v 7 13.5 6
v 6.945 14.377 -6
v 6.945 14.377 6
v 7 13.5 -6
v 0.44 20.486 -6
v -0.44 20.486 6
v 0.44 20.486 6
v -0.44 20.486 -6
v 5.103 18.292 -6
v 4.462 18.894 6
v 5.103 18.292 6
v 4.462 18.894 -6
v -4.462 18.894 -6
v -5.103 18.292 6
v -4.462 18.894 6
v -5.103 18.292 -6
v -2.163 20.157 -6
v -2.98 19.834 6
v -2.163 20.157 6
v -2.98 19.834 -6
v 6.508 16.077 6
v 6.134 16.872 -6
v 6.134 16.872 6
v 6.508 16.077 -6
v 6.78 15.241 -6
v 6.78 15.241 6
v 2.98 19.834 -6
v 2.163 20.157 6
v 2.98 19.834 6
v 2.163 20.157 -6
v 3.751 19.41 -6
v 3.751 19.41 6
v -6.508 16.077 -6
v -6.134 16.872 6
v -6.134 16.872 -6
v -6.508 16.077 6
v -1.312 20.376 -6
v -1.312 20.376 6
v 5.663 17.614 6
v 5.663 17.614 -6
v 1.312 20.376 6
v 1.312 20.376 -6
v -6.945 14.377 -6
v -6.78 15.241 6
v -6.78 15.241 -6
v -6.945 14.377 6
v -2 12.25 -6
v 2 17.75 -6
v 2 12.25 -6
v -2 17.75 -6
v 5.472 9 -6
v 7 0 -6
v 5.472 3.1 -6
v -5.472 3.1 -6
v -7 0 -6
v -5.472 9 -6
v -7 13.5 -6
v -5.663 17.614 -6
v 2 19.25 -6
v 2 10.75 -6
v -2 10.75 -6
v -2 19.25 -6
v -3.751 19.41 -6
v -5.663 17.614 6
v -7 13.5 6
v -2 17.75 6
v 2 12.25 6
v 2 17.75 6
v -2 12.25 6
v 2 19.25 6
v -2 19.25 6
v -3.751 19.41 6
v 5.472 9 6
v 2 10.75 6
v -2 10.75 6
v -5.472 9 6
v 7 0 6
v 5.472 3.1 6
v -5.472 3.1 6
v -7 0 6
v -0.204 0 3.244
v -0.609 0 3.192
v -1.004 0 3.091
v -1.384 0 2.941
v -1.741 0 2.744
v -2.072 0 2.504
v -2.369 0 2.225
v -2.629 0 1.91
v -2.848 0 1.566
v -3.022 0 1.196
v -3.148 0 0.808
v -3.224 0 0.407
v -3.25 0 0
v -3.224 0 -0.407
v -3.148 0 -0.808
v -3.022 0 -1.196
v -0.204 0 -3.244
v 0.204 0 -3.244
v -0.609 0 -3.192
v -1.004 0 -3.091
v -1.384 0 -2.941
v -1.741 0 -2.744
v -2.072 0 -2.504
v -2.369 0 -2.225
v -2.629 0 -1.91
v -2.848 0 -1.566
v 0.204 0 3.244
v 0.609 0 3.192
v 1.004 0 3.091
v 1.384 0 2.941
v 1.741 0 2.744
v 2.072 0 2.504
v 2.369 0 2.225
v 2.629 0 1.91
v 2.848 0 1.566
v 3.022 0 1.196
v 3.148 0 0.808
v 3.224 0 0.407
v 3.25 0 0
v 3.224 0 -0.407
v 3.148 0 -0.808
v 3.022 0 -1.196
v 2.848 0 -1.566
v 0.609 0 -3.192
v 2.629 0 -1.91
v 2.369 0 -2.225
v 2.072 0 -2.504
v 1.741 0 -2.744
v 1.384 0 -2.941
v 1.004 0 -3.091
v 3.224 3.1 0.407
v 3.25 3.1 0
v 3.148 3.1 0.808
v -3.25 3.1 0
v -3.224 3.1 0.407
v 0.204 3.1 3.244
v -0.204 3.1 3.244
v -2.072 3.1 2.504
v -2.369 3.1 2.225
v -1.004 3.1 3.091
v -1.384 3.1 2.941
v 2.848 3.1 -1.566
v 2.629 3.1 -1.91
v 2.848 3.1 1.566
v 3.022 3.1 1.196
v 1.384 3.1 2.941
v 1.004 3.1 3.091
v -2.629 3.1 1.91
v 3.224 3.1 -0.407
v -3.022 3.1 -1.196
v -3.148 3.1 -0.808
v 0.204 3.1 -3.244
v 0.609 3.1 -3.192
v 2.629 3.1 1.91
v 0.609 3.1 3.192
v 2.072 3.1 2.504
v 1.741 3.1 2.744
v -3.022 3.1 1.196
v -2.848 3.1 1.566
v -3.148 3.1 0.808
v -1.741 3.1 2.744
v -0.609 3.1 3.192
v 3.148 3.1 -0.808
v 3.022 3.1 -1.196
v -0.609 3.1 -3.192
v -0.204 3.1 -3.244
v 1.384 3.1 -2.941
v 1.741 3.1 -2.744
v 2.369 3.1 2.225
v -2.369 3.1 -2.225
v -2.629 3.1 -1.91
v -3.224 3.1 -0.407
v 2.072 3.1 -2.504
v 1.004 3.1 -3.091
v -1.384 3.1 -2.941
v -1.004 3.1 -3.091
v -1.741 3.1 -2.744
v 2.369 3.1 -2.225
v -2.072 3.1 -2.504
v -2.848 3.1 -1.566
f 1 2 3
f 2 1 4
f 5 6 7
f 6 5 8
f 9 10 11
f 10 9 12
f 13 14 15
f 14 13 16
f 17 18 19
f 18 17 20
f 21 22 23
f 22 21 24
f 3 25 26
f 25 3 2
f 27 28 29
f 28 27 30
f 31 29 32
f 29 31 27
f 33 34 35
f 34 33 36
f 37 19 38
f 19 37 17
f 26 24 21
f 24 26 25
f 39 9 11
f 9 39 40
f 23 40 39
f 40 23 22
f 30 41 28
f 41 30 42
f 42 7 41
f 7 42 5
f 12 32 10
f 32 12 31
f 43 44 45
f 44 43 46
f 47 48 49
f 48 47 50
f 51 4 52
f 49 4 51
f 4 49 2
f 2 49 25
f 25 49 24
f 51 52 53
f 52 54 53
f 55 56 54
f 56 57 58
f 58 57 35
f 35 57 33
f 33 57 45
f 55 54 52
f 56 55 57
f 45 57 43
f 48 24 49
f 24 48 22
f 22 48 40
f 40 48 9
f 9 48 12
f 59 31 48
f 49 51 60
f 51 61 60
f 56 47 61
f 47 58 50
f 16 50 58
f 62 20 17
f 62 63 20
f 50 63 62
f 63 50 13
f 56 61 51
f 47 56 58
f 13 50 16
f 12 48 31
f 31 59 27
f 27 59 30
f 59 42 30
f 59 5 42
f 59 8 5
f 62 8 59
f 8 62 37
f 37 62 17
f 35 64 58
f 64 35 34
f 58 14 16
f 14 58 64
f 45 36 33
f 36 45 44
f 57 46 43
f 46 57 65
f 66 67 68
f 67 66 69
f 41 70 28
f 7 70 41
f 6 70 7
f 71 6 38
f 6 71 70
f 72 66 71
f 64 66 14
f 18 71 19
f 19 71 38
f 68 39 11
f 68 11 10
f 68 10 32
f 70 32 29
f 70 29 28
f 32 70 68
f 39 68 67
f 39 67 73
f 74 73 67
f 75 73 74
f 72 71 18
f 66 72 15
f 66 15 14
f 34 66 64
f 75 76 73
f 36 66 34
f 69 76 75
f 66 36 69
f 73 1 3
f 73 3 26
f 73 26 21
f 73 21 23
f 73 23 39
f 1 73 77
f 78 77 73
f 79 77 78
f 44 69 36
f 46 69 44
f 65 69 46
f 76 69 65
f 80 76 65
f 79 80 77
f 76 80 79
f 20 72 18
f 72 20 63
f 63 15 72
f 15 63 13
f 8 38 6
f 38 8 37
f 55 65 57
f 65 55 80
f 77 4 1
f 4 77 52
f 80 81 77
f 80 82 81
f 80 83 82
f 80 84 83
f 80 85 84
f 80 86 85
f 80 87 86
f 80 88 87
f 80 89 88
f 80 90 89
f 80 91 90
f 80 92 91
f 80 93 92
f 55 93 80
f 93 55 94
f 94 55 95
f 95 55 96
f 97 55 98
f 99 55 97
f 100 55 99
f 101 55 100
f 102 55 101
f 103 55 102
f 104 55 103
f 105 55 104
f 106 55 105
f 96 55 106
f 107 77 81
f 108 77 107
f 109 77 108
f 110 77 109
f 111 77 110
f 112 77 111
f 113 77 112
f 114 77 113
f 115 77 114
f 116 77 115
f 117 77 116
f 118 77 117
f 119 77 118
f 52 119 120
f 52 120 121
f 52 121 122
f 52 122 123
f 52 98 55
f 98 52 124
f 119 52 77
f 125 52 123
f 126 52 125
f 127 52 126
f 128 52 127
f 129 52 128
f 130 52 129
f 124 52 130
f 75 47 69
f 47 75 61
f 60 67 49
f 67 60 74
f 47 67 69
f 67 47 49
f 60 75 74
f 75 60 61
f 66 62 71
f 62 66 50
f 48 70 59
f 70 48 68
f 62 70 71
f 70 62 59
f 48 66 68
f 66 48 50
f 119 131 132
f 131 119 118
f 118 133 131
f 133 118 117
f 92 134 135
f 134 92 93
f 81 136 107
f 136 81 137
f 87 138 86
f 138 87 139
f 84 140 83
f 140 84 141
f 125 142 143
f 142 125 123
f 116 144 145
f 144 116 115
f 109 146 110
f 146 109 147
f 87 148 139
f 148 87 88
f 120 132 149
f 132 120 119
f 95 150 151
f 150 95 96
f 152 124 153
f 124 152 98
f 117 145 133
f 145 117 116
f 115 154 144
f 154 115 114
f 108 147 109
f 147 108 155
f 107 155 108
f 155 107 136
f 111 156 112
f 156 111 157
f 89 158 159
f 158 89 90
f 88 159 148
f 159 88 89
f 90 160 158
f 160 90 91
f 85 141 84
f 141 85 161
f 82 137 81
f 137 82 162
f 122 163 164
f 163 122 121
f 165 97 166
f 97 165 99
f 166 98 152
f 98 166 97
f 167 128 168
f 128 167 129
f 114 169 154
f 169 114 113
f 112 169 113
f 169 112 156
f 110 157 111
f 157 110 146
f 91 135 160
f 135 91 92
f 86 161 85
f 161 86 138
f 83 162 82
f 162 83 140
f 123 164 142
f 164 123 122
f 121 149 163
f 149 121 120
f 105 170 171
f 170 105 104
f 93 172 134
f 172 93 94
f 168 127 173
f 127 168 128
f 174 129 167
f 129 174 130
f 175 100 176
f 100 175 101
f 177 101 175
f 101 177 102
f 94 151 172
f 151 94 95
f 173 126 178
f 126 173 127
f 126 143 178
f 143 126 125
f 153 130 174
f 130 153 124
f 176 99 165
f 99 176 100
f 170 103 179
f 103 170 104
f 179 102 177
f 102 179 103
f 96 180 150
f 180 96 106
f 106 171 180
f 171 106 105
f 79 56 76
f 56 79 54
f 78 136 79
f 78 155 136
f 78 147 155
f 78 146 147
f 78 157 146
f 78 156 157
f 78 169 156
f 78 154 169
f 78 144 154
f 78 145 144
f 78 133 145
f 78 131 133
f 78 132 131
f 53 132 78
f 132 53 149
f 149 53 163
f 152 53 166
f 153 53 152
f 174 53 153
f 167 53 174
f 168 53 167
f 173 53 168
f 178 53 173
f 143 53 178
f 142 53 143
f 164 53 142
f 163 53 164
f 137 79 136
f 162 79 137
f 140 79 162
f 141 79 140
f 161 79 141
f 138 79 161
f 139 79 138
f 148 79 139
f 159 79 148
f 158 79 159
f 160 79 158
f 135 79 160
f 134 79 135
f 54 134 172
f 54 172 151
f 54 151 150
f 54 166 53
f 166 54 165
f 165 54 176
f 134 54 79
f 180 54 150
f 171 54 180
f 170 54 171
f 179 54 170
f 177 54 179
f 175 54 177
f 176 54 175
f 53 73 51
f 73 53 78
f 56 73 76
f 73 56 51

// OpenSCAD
$fn = 50;


difference() {
	union() {
		translate(v = [0, 13.5000000000, -6.0000000000]) {
			rotate(a = [0, 0, 0]) {
				cylinder(h = 12, r = 7.0000000000);
			}
		}
		translate(v = [-7.0000000000, 0, -6.0000000000]) {
			rotate(a = [0, 0, 0]) {
				cube(size = [14, 13.5000000000, 12]);
			}
		}
	}
	union() {
		translate(v = [-2.0000000000, 10.7500000000, -50]) {
			rotate(a = [0, 0, 0]) {
				cube(size = [4, 1.5000000000, 100]);
			}
		}
		translate(v = [-2.0000000000, 17.7500000000, -50]) {
			rotate(a = [0, 0, 0]) {
				cube(size = [4, 1.5000000000, 100]);
			}
		}
		translate(v = [0.0000000000, 8, 0]) {
			rotate(a = [90, 0, 0]) {
				cylinder(h = 8, r = 3.2500000000);
			}
		}
		translate(v = [-5.4716204506, 9, -25]) {
			rotate(a = [90, 0, 0]) {
				cube(size = [10.9432409012, 100, 5.9000000000]);
			}
		}
	}
}
